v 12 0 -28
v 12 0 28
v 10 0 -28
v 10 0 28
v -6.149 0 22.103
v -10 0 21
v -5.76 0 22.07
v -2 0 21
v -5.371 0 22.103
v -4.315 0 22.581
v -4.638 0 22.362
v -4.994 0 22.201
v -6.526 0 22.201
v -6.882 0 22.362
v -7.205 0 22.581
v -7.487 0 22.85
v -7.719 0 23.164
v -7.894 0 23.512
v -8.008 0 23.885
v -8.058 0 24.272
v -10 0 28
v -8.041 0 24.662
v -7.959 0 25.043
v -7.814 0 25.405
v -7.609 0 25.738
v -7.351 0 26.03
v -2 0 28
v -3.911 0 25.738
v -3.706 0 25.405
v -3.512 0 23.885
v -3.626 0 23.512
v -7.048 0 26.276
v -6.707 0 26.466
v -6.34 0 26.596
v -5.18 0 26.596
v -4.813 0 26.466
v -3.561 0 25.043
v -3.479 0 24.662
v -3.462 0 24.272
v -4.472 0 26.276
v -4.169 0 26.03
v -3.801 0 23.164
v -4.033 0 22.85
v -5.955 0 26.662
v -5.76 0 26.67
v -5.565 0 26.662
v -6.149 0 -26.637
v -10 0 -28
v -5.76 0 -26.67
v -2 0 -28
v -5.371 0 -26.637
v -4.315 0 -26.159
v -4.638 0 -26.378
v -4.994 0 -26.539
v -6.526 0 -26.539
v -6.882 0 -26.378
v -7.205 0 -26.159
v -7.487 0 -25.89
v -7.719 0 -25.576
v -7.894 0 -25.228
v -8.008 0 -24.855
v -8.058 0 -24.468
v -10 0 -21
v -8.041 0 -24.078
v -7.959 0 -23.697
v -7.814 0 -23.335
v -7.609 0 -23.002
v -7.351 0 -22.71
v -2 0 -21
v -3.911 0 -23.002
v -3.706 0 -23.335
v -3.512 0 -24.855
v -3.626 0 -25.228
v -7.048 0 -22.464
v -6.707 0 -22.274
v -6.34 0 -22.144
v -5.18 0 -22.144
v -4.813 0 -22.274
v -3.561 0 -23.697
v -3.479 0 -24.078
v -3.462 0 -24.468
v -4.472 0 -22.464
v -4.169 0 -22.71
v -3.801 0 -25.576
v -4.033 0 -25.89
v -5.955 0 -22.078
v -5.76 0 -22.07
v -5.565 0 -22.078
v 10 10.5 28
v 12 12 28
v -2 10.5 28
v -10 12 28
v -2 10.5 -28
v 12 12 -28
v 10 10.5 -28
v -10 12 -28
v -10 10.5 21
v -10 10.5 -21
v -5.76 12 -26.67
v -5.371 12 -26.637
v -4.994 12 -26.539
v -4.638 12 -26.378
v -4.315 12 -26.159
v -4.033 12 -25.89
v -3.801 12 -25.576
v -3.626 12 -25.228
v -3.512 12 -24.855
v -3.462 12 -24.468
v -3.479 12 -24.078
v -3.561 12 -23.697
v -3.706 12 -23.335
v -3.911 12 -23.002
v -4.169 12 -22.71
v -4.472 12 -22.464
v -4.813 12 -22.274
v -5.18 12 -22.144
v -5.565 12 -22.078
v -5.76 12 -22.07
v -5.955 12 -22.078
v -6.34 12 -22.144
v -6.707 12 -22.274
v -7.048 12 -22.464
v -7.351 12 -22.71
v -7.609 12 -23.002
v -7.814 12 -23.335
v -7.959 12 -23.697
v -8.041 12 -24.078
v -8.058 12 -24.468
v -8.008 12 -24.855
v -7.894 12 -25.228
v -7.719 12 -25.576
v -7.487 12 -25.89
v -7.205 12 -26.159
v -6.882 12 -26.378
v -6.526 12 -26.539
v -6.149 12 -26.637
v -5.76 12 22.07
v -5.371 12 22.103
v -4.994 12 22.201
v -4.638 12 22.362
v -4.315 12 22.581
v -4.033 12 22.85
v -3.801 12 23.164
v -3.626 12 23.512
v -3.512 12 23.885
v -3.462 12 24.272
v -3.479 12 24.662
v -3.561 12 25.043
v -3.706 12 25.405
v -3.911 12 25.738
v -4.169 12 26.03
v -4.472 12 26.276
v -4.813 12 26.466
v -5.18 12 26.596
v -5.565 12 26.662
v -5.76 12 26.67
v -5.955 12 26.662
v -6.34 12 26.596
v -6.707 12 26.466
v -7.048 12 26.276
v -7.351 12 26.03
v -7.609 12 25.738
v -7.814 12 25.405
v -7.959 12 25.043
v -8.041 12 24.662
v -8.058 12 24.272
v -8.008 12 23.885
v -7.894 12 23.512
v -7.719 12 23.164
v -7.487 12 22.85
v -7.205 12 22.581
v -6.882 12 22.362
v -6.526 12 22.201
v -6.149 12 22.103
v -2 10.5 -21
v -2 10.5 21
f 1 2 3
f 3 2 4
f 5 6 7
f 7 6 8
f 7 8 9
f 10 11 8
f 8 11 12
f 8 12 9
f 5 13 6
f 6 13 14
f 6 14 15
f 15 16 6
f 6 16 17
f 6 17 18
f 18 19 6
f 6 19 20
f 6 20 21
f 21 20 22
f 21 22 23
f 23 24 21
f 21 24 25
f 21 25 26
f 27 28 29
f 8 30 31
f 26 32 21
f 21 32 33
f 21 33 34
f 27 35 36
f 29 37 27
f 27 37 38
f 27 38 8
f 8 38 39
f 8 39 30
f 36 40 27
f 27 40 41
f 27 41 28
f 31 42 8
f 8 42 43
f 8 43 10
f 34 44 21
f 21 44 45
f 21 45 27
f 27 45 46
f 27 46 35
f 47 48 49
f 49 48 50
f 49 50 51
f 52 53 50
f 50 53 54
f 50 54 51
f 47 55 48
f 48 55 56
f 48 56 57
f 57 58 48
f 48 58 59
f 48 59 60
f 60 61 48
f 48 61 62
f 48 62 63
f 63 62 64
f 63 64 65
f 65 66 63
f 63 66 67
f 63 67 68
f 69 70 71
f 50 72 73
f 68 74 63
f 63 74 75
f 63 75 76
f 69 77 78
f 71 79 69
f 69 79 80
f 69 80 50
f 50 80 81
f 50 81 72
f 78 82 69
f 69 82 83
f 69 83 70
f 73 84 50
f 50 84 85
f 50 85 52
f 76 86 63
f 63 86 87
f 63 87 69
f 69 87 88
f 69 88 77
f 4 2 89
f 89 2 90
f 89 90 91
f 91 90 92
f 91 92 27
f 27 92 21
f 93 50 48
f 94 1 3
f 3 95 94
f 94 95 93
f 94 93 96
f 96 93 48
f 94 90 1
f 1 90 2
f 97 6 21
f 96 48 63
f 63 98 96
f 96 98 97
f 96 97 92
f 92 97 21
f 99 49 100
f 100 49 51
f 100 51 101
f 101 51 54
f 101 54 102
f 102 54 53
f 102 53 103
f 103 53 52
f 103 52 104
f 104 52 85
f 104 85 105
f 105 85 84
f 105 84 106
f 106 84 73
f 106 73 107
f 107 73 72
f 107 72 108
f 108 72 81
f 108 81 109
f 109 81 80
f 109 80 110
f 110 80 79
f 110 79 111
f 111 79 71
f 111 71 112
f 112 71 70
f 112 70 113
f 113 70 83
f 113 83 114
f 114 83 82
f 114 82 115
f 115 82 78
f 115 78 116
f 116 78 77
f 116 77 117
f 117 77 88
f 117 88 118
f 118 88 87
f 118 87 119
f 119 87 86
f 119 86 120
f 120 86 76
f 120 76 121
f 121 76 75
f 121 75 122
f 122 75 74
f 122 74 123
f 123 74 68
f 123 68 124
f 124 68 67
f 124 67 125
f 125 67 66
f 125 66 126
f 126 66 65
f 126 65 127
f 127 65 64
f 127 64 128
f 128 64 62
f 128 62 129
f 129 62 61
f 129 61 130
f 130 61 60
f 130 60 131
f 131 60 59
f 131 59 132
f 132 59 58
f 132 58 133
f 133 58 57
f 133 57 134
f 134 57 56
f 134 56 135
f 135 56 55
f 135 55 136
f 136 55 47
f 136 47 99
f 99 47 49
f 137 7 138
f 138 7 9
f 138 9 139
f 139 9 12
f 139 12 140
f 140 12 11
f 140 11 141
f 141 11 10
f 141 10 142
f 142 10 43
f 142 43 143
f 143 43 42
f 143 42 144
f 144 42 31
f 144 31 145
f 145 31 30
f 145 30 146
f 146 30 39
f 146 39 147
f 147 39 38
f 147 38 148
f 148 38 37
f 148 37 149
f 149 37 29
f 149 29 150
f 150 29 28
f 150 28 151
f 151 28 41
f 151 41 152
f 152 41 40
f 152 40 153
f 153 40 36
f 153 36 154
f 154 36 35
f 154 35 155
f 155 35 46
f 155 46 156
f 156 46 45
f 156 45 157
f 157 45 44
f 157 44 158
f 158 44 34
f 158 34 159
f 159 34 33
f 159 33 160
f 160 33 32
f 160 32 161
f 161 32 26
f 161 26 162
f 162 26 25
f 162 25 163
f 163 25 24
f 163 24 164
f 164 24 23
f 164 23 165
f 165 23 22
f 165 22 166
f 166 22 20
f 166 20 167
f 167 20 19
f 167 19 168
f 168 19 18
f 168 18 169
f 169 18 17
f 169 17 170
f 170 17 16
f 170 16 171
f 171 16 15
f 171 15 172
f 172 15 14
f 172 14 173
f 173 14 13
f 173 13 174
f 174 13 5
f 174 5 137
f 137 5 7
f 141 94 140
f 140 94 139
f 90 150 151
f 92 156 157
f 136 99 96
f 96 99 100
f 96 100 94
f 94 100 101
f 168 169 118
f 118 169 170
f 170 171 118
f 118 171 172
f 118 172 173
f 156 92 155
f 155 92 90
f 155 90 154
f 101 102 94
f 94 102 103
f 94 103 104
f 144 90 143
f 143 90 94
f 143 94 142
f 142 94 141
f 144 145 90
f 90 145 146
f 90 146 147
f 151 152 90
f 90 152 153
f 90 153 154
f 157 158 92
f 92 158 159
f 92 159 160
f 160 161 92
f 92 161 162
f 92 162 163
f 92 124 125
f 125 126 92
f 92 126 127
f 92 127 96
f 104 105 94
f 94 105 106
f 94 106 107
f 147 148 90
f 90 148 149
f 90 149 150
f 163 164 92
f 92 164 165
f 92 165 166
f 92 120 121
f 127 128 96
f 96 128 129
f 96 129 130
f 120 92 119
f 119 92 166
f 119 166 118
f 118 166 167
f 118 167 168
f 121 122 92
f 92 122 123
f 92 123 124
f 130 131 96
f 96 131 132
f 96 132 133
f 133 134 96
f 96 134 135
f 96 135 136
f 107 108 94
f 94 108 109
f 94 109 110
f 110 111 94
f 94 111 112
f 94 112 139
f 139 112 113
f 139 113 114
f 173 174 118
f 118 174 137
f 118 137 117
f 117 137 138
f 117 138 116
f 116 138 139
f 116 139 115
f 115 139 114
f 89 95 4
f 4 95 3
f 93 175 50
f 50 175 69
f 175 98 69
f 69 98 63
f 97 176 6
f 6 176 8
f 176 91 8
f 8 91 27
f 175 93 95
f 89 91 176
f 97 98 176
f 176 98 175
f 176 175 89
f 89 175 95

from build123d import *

# Parameters (mm, degrees)
SKETCH1_R           = 2.3
BOSS_EXTRUDE2_DEPTH = 12
CUT_EXTRUDE1_DEPTH  = 10.5
BOSS_EXTRUDE3_START = -1.5
SKETCH4_W           = 22
SKETCH4_H           = 1
BOSS_EXTRUDE3_DEPTH = 12
SKETCH5_W           = 12
SKETCH5_H           = 56
CUT_EXTRUDE2_DEPTH  = 10.5


with BuildPart() as part:
    # Sketch1 → Boss-Extrude2 (new body)
    with BuildSketch(Plane(origin=(0, 0, 0), x_dir=(1, 0, 0), z_dir=(0, 1, 0))):
        Polygon((12, 27), (12, -27), (10, -27), (-10, -27), (-10, -20), (-10, 20), (-10, 27), (10, 27), align=None)
        with Locations(Location((-5.76, 24.37, 0), (0, 0, 270))):
            Circle(SKETCH1_R, mode=Mode.SUBTRACT)
        with Locations(Location((-5.76, -24.37, 0), (0, 0, 270))):
            Circle(SKETCH1_R, mode=Mode.SUBTRACT)
    extrude(amount=BOSS_EXTRUDE2_DEPTH)

    # Sketch3 → Cut-Extrude1 (cut)
    with BuildSketch(Plane.XZ):
        Polygon((10, 27), (-2, 27), (-2, 21), (-10, 21), (-10, -21), (-2, -21), (-2, -27), (10, -27), align=None)
    extrude(amount=-CUT_EXTRUDE1_DEPTH, mode=Mode.SUBTRACT)

    # Sketch4 → Boss-Extrude3 (add)
    with BuildSketch(Plane.XZ.offset(-10.5).offset(BOSS_EXTRUDE3_START)):
        with Locations((1, 27.5)):
            Rectangle(SKETCH4_W, SKETCH4_H)
        with Locations((1, -27.5)):
            Rectangle(SKETCH4_W, SKETCH4_H)
    extrude(amount=BOSS_EXTRUDE3_DEPTH)

    # Sketch5 → Cut-Extrude2 (cut)
    with BuildSketch(Plane.XZ.offset(-10.5)):
        with Locations((4, 0)):
            Rectangle(SKETCH5_W, SKETCH5_H)
    extrude(amount=CUT_EXTRUDE2_DEPTH, mode=Mode.SUBTRACT)


solid = part.part
